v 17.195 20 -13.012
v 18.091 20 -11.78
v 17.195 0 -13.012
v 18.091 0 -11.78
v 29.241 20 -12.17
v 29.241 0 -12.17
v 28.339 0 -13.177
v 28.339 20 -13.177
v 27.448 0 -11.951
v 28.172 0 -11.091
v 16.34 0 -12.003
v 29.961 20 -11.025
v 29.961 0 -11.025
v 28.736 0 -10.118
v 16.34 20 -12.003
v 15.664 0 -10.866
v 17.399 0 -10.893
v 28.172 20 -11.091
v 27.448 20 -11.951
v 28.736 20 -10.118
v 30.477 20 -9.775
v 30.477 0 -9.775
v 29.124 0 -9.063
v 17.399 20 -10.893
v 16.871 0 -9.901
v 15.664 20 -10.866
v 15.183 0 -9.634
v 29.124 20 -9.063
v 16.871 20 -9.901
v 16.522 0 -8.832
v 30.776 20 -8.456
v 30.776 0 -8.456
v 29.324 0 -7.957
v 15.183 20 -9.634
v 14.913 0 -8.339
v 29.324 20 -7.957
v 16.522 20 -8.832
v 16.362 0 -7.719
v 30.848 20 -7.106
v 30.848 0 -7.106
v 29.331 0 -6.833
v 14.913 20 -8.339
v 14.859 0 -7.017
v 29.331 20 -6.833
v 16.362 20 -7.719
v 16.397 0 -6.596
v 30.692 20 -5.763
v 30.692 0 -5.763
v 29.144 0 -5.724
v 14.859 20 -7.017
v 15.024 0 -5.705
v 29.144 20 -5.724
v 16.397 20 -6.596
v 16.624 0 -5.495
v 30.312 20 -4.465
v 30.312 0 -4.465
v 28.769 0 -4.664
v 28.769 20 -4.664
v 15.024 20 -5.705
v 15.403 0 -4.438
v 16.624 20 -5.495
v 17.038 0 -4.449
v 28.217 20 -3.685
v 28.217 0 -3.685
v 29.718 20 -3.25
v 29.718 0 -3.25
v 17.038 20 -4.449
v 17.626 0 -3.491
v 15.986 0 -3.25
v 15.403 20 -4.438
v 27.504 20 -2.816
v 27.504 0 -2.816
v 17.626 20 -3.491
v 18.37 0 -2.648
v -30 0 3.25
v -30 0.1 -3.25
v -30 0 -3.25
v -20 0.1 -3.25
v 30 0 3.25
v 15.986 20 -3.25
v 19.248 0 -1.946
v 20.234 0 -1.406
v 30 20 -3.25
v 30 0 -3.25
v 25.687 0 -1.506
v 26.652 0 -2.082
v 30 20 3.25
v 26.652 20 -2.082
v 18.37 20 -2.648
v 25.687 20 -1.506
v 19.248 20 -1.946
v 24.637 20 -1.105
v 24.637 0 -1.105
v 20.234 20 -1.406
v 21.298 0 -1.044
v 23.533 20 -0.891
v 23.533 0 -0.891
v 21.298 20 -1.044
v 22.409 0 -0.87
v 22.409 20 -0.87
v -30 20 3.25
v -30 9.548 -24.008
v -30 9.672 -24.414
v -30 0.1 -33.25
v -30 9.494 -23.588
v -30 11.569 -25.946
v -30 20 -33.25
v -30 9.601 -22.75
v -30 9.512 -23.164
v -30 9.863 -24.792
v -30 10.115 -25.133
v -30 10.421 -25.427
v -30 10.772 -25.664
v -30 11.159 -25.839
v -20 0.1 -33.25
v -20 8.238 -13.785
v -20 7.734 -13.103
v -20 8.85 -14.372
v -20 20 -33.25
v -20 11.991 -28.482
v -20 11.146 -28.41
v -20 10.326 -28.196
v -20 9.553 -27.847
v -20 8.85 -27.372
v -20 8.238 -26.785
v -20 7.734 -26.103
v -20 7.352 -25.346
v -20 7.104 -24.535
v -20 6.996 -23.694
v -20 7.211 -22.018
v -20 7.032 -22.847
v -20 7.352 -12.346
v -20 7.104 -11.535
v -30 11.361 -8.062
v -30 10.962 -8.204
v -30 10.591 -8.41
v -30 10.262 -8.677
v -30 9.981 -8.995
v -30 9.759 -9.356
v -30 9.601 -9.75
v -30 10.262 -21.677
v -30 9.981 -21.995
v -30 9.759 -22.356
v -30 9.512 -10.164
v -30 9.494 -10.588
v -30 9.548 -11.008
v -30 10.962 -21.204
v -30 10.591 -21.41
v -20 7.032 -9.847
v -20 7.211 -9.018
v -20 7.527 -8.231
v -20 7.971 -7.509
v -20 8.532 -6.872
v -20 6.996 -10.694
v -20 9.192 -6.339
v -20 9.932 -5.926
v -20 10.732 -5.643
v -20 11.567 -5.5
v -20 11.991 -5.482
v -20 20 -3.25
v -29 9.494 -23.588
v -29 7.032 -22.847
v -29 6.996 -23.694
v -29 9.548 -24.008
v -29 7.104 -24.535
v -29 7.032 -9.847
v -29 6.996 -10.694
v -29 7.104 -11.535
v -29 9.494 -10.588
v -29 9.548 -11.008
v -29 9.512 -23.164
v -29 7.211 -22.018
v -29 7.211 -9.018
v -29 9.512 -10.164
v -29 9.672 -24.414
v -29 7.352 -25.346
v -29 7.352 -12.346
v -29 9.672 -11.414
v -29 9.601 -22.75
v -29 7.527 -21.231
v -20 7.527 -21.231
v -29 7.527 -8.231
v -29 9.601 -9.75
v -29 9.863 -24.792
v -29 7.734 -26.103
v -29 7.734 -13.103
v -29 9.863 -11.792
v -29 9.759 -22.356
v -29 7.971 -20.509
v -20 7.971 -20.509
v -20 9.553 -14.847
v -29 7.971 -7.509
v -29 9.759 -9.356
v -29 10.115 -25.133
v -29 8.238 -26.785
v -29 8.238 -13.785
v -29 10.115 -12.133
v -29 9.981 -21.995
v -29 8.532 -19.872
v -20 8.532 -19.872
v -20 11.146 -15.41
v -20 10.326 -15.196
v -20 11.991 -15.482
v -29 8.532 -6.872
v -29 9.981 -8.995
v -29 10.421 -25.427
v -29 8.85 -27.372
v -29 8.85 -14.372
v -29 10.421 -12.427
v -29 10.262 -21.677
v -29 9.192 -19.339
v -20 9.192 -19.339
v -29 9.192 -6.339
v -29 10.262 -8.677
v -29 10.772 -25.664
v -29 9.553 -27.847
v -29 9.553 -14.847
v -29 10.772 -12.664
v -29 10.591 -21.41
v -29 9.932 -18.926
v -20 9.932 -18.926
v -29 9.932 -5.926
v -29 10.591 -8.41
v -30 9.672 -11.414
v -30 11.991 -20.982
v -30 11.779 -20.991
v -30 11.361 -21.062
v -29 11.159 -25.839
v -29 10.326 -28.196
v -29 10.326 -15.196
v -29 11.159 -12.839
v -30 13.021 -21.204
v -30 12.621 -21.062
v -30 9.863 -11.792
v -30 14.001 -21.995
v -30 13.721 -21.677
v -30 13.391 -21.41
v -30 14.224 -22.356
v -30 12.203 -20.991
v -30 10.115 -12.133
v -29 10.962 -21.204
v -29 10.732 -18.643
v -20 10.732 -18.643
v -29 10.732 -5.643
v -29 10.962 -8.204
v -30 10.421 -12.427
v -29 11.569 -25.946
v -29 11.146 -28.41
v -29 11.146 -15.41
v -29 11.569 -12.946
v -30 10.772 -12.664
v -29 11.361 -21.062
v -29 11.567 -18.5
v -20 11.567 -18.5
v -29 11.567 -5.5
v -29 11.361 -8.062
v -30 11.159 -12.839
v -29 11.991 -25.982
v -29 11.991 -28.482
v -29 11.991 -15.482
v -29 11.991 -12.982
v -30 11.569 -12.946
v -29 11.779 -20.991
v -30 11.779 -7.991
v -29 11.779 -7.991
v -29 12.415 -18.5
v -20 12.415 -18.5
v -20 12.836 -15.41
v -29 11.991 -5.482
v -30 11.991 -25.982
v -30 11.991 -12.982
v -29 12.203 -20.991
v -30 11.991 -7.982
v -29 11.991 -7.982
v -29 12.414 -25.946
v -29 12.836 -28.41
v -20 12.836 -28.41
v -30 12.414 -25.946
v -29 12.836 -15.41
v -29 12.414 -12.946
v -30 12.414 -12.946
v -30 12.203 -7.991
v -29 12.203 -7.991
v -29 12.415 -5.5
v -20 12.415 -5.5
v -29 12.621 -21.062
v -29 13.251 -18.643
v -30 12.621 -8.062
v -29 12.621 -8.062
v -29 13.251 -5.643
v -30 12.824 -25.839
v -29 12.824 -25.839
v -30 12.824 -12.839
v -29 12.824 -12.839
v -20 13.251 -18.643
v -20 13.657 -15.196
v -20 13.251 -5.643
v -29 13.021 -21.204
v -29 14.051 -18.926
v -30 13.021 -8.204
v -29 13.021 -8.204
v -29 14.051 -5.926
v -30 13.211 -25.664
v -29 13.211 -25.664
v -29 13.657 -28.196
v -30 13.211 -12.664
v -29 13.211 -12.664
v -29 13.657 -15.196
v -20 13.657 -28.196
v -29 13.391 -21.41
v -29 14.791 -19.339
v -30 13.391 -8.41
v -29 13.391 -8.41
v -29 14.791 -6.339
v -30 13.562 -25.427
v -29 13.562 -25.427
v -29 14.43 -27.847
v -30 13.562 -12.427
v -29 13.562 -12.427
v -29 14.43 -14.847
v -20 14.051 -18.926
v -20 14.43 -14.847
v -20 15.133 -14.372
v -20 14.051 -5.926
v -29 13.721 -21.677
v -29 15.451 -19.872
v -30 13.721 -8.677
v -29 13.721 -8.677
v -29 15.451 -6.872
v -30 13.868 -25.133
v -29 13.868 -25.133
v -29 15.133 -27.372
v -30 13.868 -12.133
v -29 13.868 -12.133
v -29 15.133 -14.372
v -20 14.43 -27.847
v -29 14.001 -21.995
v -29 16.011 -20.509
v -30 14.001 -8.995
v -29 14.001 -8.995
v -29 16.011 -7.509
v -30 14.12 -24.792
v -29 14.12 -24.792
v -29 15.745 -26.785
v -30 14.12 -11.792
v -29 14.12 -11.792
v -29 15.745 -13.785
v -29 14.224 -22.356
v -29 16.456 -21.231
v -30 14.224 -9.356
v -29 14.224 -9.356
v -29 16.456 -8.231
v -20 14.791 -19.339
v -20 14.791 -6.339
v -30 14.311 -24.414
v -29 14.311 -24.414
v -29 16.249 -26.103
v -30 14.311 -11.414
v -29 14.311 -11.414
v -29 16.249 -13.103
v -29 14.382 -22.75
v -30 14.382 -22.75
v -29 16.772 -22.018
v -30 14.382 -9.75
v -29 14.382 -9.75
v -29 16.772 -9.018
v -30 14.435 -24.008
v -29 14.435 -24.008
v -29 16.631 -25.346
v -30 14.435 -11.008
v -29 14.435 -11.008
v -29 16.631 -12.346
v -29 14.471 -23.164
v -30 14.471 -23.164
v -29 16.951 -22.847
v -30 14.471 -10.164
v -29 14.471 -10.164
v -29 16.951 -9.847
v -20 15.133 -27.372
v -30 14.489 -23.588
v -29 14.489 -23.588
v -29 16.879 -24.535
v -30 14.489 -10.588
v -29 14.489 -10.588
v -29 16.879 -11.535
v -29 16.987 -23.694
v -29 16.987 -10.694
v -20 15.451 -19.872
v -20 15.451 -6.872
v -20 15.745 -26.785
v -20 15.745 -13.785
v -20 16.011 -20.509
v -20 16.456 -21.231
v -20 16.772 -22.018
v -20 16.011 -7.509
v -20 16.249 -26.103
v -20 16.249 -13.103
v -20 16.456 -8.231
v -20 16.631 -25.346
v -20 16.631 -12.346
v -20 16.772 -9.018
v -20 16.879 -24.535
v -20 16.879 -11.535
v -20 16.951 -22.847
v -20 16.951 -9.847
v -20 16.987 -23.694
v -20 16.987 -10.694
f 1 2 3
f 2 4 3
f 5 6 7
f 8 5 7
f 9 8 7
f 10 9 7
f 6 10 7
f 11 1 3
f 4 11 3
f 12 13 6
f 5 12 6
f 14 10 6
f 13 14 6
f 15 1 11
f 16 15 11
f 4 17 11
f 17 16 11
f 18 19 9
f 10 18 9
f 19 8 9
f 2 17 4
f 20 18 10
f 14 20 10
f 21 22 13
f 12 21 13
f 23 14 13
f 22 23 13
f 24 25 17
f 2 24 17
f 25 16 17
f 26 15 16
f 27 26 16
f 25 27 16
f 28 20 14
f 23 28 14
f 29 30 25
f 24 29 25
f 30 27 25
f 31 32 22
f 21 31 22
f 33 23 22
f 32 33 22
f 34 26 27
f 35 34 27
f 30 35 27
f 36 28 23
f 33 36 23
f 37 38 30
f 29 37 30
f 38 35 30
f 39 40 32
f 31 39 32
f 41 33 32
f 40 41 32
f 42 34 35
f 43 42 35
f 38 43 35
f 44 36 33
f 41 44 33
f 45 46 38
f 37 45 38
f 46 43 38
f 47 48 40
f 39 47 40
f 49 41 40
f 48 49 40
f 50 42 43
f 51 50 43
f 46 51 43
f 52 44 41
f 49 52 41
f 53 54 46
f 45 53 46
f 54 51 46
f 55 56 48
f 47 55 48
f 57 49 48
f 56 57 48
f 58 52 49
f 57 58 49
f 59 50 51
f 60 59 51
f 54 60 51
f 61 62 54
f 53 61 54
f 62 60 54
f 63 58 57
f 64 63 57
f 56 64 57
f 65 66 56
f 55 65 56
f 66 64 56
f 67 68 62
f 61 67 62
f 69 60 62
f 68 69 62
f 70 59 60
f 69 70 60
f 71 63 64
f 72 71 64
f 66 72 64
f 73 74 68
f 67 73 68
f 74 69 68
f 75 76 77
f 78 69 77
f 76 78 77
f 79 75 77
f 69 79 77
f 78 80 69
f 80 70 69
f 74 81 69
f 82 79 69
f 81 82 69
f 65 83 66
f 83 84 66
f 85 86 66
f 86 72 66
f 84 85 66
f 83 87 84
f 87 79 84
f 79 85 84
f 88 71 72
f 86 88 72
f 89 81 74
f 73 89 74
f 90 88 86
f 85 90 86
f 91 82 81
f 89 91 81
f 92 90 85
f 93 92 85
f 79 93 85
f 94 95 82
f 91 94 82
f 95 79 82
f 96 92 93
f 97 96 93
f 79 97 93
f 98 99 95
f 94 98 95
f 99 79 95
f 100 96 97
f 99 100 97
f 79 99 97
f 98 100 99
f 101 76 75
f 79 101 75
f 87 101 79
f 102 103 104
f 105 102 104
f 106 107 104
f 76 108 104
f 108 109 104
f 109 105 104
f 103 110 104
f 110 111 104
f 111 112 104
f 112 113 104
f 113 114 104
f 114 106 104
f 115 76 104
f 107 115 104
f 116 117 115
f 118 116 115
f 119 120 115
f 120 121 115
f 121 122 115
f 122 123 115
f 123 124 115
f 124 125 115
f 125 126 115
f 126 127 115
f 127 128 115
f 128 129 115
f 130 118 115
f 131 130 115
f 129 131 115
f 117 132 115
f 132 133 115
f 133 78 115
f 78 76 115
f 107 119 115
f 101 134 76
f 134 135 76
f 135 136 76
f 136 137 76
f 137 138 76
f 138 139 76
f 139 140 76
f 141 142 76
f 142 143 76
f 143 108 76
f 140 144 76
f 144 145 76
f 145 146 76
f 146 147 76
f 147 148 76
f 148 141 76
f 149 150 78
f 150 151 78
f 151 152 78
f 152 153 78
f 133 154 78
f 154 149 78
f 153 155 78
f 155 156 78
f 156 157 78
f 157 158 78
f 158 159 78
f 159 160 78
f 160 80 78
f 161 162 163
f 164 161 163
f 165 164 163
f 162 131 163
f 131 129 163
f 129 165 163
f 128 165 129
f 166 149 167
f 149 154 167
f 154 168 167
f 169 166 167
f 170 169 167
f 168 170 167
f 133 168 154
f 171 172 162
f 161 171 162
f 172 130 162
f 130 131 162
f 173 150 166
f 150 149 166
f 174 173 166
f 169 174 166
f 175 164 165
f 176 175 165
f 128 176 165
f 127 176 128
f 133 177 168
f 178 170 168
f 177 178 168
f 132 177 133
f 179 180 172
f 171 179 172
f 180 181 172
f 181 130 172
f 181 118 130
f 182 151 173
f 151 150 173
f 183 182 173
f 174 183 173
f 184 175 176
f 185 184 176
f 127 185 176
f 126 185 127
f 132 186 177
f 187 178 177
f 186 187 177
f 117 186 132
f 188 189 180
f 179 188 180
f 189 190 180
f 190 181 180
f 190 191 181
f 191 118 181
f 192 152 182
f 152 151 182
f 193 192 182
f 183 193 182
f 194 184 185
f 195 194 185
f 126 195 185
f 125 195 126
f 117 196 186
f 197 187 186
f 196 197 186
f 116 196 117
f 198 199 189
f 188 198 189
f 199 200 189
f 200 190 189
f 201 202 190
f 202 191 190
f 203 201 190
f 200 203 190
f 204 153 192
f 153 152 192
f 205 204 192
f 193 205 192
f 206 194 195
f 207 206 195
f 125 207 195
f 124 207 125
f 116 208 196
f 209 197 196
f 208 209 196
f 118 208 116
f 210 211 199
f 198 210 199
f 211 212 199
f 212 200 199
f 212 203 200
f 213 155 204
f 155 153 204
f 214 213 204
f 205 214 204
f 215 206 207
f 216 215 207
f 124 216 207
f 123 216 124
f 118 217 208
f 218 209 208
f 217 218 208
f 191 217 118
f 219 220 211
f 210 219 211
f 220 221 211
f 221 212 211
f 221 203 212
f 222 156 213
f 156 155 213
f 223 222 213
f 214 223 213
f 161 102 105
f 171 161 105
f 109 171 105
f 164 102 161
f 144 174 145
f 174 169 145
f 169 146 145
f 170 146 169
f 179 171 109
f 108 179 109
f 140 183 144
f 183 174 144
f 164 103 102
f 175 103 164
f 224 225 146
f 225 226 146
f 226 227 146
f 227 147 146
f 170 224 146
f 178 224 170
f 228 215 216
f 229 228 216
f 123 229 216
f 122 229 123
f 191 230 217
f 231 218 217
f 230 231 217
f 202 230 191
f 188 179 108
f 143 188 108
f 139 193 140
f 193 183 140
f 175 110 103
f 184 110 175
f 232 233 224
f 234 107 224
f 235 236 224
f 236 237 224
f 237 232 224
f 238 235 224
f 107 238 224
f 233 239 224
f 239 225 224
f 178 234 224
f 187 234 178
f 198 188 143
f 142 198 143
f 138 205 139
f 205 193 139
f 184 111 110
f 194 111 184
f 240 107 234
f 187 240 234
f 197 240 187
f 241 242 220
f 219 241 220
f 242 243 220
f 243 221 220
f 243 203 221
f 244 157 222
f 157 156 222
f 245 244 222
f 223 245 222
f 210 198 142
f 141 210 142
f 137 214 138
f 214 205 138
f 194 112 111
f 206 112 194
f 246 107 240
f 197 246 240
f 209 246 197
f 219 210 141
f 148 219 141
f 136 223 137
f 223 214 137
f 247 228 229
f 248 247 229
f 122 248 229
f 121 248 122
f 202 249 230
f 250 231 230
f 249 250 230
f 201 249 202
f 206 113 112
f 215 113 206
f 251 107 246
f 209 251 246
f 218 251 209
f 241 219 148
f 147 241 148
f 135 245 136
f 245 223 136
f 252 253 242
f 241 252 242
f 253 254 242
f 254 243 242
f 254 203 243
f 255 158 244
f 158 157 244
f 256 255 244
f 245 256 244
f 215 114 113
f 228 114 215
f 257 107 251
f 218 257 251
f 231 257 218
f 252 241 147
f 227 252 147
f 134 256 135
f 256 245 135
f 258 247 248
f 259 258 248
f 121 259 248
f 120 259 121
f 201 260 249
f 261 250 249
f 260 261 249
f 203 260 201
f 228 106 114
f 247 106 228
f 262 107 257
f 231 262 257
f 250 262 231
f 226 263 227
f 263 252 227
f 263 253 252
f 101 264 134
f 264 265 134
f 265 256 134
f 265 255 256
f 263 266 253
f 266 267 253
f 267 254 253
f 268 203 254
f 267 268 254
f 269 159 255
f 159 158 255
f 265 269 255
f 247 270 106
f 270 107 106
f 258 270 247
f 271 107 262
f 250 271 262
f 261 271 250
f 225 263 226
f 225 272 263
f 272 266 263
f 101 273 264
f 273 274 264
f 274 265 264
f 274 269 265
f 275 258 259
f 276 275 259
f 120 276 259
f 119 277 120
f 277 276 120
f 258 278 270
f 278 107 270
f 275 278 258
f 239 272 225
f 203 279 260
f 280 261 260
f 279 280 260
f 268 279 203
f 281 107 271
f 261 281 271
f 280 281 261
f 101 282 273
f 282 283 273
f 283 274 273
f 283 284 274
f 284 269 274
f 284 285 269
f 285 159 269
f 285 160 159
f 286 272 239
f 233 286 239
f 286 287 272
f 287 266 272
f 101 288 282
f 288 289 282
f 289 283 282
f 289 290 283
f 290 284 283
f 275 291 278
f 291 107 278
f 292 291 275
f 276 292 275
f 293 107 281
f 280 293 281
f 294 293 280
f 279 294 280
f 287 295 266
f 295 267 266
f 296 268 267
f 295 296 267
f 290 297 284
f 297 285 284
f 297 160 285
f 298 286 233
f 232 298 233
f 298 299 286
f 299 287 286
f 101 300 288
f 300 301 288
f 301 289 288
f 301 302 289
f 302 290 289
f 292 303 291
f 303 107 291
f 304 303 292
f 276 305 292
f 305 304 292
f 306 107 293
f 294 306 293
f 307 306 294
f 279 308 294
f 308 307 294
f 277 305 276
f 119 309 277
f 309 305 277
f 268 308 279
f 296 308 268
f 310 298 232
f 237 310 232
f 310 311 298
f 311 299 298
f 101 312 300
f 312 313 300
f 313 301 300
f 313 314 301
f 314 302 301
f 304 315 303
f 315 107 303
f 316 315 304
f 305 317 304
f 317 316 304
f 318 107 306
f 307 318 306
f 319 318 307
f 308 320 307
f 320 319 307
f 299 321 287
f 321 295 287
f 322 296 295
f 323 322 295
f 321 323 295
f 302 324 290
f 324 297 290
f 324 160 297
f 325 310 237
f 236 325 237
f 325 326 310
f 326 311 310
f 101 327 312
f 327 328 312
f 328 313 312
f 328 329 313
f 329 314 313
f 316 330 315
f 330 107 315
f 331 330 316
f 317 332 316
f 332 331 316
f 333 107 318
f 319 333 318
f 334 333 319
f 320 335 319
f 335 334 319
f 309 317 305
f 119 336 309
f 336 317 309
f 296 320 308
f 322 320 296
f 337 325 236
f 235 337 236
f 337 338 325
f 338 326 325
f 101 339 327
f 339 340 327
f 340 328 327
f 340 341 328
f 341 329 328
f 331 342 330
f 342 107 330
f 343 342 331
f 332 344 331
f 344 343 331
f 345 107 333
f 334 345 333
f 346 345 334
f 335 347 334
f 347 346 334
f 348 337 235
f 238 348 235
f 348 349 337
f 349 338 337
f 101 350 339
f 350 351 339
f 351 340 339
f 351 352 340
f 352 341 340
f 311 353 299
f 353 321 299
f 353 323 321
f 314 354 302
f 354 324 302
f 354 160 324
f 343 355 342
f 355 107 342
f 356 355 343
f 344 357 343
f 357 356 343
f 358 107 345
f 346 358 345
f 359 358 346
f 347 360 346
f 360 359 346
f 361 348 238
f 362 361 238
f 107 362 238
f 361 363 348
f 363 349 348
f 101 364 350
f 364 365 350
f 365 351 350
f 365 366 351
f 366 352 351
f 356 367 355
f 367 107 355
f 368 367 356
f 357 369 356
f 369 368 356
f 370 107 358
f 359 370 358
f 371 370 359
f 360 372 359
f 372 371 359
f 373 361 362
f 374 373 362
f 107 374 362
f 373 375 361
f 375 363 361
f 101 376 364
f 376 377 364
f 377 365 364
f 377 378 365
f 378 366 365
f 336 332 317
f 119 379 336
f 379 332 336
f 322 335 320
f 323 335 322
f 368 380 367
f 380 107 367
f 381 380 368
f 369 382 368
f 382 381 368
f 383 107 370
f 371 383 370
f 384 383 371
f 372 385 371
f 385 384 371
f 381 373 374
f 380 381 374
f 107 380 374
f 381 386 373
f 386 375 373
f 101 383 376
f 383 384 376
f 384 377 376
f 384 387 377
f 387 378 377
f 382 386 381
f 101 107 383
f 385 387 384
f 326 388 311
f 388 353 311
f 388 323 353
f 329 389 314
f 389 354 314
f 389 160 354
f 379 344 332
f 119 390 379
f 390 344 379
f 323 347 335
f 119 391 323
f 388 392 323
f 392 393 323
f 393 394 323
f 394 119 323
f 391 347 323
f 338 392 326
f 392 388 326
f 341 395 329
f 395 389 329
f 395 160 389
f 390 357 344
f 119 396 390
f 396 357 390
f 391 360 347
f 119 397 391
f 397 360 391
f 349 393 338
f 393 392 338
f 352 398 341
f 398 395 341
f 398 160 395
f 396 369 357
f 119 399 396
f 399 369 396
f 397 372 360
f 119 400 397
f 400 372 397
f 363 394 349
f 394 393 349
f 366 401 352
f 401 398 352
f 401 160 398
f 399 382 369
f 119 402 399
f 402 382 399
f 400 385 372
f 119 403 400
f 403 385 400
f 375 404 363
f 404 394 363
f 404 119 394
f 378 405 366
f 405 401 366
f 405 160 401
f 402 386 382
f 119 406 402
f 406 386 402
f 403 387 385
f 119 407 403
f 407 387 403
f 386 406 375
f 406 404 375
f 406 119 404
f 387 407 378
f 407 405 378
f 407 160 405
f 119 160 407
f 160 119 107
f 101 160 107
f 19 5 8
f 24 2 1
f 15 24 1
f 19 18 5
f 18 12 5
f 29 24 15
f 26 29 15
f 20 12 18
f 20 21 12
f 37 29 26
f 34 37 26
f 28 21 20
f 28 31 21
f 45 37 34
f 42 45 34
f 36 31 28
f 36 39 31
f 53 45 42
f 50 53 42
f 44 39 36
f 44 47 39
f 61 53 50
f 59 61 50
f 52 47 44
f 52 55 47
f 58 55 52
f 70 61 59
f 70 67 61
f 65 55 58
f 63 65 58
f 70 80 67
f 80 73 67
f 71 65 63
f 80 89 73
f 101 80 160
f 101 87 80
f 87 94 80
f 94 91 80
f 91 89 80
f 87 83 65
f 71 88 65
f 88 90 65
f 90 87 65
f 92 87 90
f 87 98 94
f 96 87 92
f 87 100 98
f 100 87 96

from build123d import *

# Parameters (mm, degrees)
EXTRUDE_1_DEPTH     = 20
SKETCH_2_W          = 10
SKETCH_2_H          = 19.900109324
EXTRUDE_2_DEPTH     = 30
SKETCH_3_R          = 2.5
CUT_EXTRUDE_1_DEPTH = 15
SKETCH_6_R          = 5
CUT_EXTRUDE_3_DEPTH = 9


with BuildPart() as part:
    # 草圖1 → 填料-伸長1 (new body)
    with BuildSketch(Plane(origin=(0, 0, 0), x_dir=(1, 0, 0), z_dir=(0, 1, 0))):
        with BuildLine():
            Line((18.090545138, 11.779886892), (17.195277264, 13.012117407))
            ThreePointArc((17.195277264, 13.012117407), (14.912835639, 8.338920118), (15.985777721, 3.25))
            Line((15.985777721, 3.25), (-30, 3.25))
            Line((-30, 3.25), (-30, -3.25))
            Line((-30, -3.25), (30, -3.25))
            Line((30, -3.25), (30, 3.25))
            Line((30, 3.25), (29.718485306, 3.25))
            ThreePointArc((29.718485306, 3.25), (30.775982744, 8.456436022), (28.338903699, 13.177232841))
            Line((28.338903699, 13.177232841), (27.448325592, 11.951457236))
            ThreePointArc((27.448325592, 11.951457236), (22.97128582, 0.856355384), (18.090545138, 11.779886892))
        make_face()
    extrude(amount=EXTRUDE_1_DEPTH)

    # 草圖2 → 填料-伸長2 (add)
    with BuildSketch(Plane(origin=(0, 0, -3.25), x_dir=(-1, 0, 0), z_dir=(0, 0, -1))):
        with Locations((25, 10.049945338)):
            Rectangle(SKETCH_2_W, SKETCH_2_H)
    extrude(amount=EXTRUDE_2_DEPTH)

    # 草圖3 → 除料-伸長1 (cut)
    with BuildSketch(Plane(origin=(-20, 0, 0), x_dir=(0, 0, -1), z_dir=(1, 0, 0))):
        with Locations((23.481727135, 11.991404281)):
            Circle(SKETCH_3_R)
        with Locations(Location((10.481727135, 11.991404281, 0), (0, 0, 180))):
            Circle(SKETCH_3_R)
    extrude(amount=-CUT_EXTRUDE_1_DEPTH, mode=Mode.SUBTRACT)

    # 草圖6 → 除料-伸長3 (cut)
    with BuildSketch(Plane(origin=(-20, 0, 0), x_dir=(0, 0, -1), z_dir=(1, 0, 0))):
        with Locations((23.481727135, 11.991404281)):
            Circle(SKETCH_6_R)
        with Locations(Location((10.481727135, 11.991404281, 0), (0, 0, 180))):
            Circle(SKETCH_6_R)
    extrude(amount=-CUT_EXTRUDE_3_DEPTH, mode=Mode.SUBTRACT)


solid = part.part
